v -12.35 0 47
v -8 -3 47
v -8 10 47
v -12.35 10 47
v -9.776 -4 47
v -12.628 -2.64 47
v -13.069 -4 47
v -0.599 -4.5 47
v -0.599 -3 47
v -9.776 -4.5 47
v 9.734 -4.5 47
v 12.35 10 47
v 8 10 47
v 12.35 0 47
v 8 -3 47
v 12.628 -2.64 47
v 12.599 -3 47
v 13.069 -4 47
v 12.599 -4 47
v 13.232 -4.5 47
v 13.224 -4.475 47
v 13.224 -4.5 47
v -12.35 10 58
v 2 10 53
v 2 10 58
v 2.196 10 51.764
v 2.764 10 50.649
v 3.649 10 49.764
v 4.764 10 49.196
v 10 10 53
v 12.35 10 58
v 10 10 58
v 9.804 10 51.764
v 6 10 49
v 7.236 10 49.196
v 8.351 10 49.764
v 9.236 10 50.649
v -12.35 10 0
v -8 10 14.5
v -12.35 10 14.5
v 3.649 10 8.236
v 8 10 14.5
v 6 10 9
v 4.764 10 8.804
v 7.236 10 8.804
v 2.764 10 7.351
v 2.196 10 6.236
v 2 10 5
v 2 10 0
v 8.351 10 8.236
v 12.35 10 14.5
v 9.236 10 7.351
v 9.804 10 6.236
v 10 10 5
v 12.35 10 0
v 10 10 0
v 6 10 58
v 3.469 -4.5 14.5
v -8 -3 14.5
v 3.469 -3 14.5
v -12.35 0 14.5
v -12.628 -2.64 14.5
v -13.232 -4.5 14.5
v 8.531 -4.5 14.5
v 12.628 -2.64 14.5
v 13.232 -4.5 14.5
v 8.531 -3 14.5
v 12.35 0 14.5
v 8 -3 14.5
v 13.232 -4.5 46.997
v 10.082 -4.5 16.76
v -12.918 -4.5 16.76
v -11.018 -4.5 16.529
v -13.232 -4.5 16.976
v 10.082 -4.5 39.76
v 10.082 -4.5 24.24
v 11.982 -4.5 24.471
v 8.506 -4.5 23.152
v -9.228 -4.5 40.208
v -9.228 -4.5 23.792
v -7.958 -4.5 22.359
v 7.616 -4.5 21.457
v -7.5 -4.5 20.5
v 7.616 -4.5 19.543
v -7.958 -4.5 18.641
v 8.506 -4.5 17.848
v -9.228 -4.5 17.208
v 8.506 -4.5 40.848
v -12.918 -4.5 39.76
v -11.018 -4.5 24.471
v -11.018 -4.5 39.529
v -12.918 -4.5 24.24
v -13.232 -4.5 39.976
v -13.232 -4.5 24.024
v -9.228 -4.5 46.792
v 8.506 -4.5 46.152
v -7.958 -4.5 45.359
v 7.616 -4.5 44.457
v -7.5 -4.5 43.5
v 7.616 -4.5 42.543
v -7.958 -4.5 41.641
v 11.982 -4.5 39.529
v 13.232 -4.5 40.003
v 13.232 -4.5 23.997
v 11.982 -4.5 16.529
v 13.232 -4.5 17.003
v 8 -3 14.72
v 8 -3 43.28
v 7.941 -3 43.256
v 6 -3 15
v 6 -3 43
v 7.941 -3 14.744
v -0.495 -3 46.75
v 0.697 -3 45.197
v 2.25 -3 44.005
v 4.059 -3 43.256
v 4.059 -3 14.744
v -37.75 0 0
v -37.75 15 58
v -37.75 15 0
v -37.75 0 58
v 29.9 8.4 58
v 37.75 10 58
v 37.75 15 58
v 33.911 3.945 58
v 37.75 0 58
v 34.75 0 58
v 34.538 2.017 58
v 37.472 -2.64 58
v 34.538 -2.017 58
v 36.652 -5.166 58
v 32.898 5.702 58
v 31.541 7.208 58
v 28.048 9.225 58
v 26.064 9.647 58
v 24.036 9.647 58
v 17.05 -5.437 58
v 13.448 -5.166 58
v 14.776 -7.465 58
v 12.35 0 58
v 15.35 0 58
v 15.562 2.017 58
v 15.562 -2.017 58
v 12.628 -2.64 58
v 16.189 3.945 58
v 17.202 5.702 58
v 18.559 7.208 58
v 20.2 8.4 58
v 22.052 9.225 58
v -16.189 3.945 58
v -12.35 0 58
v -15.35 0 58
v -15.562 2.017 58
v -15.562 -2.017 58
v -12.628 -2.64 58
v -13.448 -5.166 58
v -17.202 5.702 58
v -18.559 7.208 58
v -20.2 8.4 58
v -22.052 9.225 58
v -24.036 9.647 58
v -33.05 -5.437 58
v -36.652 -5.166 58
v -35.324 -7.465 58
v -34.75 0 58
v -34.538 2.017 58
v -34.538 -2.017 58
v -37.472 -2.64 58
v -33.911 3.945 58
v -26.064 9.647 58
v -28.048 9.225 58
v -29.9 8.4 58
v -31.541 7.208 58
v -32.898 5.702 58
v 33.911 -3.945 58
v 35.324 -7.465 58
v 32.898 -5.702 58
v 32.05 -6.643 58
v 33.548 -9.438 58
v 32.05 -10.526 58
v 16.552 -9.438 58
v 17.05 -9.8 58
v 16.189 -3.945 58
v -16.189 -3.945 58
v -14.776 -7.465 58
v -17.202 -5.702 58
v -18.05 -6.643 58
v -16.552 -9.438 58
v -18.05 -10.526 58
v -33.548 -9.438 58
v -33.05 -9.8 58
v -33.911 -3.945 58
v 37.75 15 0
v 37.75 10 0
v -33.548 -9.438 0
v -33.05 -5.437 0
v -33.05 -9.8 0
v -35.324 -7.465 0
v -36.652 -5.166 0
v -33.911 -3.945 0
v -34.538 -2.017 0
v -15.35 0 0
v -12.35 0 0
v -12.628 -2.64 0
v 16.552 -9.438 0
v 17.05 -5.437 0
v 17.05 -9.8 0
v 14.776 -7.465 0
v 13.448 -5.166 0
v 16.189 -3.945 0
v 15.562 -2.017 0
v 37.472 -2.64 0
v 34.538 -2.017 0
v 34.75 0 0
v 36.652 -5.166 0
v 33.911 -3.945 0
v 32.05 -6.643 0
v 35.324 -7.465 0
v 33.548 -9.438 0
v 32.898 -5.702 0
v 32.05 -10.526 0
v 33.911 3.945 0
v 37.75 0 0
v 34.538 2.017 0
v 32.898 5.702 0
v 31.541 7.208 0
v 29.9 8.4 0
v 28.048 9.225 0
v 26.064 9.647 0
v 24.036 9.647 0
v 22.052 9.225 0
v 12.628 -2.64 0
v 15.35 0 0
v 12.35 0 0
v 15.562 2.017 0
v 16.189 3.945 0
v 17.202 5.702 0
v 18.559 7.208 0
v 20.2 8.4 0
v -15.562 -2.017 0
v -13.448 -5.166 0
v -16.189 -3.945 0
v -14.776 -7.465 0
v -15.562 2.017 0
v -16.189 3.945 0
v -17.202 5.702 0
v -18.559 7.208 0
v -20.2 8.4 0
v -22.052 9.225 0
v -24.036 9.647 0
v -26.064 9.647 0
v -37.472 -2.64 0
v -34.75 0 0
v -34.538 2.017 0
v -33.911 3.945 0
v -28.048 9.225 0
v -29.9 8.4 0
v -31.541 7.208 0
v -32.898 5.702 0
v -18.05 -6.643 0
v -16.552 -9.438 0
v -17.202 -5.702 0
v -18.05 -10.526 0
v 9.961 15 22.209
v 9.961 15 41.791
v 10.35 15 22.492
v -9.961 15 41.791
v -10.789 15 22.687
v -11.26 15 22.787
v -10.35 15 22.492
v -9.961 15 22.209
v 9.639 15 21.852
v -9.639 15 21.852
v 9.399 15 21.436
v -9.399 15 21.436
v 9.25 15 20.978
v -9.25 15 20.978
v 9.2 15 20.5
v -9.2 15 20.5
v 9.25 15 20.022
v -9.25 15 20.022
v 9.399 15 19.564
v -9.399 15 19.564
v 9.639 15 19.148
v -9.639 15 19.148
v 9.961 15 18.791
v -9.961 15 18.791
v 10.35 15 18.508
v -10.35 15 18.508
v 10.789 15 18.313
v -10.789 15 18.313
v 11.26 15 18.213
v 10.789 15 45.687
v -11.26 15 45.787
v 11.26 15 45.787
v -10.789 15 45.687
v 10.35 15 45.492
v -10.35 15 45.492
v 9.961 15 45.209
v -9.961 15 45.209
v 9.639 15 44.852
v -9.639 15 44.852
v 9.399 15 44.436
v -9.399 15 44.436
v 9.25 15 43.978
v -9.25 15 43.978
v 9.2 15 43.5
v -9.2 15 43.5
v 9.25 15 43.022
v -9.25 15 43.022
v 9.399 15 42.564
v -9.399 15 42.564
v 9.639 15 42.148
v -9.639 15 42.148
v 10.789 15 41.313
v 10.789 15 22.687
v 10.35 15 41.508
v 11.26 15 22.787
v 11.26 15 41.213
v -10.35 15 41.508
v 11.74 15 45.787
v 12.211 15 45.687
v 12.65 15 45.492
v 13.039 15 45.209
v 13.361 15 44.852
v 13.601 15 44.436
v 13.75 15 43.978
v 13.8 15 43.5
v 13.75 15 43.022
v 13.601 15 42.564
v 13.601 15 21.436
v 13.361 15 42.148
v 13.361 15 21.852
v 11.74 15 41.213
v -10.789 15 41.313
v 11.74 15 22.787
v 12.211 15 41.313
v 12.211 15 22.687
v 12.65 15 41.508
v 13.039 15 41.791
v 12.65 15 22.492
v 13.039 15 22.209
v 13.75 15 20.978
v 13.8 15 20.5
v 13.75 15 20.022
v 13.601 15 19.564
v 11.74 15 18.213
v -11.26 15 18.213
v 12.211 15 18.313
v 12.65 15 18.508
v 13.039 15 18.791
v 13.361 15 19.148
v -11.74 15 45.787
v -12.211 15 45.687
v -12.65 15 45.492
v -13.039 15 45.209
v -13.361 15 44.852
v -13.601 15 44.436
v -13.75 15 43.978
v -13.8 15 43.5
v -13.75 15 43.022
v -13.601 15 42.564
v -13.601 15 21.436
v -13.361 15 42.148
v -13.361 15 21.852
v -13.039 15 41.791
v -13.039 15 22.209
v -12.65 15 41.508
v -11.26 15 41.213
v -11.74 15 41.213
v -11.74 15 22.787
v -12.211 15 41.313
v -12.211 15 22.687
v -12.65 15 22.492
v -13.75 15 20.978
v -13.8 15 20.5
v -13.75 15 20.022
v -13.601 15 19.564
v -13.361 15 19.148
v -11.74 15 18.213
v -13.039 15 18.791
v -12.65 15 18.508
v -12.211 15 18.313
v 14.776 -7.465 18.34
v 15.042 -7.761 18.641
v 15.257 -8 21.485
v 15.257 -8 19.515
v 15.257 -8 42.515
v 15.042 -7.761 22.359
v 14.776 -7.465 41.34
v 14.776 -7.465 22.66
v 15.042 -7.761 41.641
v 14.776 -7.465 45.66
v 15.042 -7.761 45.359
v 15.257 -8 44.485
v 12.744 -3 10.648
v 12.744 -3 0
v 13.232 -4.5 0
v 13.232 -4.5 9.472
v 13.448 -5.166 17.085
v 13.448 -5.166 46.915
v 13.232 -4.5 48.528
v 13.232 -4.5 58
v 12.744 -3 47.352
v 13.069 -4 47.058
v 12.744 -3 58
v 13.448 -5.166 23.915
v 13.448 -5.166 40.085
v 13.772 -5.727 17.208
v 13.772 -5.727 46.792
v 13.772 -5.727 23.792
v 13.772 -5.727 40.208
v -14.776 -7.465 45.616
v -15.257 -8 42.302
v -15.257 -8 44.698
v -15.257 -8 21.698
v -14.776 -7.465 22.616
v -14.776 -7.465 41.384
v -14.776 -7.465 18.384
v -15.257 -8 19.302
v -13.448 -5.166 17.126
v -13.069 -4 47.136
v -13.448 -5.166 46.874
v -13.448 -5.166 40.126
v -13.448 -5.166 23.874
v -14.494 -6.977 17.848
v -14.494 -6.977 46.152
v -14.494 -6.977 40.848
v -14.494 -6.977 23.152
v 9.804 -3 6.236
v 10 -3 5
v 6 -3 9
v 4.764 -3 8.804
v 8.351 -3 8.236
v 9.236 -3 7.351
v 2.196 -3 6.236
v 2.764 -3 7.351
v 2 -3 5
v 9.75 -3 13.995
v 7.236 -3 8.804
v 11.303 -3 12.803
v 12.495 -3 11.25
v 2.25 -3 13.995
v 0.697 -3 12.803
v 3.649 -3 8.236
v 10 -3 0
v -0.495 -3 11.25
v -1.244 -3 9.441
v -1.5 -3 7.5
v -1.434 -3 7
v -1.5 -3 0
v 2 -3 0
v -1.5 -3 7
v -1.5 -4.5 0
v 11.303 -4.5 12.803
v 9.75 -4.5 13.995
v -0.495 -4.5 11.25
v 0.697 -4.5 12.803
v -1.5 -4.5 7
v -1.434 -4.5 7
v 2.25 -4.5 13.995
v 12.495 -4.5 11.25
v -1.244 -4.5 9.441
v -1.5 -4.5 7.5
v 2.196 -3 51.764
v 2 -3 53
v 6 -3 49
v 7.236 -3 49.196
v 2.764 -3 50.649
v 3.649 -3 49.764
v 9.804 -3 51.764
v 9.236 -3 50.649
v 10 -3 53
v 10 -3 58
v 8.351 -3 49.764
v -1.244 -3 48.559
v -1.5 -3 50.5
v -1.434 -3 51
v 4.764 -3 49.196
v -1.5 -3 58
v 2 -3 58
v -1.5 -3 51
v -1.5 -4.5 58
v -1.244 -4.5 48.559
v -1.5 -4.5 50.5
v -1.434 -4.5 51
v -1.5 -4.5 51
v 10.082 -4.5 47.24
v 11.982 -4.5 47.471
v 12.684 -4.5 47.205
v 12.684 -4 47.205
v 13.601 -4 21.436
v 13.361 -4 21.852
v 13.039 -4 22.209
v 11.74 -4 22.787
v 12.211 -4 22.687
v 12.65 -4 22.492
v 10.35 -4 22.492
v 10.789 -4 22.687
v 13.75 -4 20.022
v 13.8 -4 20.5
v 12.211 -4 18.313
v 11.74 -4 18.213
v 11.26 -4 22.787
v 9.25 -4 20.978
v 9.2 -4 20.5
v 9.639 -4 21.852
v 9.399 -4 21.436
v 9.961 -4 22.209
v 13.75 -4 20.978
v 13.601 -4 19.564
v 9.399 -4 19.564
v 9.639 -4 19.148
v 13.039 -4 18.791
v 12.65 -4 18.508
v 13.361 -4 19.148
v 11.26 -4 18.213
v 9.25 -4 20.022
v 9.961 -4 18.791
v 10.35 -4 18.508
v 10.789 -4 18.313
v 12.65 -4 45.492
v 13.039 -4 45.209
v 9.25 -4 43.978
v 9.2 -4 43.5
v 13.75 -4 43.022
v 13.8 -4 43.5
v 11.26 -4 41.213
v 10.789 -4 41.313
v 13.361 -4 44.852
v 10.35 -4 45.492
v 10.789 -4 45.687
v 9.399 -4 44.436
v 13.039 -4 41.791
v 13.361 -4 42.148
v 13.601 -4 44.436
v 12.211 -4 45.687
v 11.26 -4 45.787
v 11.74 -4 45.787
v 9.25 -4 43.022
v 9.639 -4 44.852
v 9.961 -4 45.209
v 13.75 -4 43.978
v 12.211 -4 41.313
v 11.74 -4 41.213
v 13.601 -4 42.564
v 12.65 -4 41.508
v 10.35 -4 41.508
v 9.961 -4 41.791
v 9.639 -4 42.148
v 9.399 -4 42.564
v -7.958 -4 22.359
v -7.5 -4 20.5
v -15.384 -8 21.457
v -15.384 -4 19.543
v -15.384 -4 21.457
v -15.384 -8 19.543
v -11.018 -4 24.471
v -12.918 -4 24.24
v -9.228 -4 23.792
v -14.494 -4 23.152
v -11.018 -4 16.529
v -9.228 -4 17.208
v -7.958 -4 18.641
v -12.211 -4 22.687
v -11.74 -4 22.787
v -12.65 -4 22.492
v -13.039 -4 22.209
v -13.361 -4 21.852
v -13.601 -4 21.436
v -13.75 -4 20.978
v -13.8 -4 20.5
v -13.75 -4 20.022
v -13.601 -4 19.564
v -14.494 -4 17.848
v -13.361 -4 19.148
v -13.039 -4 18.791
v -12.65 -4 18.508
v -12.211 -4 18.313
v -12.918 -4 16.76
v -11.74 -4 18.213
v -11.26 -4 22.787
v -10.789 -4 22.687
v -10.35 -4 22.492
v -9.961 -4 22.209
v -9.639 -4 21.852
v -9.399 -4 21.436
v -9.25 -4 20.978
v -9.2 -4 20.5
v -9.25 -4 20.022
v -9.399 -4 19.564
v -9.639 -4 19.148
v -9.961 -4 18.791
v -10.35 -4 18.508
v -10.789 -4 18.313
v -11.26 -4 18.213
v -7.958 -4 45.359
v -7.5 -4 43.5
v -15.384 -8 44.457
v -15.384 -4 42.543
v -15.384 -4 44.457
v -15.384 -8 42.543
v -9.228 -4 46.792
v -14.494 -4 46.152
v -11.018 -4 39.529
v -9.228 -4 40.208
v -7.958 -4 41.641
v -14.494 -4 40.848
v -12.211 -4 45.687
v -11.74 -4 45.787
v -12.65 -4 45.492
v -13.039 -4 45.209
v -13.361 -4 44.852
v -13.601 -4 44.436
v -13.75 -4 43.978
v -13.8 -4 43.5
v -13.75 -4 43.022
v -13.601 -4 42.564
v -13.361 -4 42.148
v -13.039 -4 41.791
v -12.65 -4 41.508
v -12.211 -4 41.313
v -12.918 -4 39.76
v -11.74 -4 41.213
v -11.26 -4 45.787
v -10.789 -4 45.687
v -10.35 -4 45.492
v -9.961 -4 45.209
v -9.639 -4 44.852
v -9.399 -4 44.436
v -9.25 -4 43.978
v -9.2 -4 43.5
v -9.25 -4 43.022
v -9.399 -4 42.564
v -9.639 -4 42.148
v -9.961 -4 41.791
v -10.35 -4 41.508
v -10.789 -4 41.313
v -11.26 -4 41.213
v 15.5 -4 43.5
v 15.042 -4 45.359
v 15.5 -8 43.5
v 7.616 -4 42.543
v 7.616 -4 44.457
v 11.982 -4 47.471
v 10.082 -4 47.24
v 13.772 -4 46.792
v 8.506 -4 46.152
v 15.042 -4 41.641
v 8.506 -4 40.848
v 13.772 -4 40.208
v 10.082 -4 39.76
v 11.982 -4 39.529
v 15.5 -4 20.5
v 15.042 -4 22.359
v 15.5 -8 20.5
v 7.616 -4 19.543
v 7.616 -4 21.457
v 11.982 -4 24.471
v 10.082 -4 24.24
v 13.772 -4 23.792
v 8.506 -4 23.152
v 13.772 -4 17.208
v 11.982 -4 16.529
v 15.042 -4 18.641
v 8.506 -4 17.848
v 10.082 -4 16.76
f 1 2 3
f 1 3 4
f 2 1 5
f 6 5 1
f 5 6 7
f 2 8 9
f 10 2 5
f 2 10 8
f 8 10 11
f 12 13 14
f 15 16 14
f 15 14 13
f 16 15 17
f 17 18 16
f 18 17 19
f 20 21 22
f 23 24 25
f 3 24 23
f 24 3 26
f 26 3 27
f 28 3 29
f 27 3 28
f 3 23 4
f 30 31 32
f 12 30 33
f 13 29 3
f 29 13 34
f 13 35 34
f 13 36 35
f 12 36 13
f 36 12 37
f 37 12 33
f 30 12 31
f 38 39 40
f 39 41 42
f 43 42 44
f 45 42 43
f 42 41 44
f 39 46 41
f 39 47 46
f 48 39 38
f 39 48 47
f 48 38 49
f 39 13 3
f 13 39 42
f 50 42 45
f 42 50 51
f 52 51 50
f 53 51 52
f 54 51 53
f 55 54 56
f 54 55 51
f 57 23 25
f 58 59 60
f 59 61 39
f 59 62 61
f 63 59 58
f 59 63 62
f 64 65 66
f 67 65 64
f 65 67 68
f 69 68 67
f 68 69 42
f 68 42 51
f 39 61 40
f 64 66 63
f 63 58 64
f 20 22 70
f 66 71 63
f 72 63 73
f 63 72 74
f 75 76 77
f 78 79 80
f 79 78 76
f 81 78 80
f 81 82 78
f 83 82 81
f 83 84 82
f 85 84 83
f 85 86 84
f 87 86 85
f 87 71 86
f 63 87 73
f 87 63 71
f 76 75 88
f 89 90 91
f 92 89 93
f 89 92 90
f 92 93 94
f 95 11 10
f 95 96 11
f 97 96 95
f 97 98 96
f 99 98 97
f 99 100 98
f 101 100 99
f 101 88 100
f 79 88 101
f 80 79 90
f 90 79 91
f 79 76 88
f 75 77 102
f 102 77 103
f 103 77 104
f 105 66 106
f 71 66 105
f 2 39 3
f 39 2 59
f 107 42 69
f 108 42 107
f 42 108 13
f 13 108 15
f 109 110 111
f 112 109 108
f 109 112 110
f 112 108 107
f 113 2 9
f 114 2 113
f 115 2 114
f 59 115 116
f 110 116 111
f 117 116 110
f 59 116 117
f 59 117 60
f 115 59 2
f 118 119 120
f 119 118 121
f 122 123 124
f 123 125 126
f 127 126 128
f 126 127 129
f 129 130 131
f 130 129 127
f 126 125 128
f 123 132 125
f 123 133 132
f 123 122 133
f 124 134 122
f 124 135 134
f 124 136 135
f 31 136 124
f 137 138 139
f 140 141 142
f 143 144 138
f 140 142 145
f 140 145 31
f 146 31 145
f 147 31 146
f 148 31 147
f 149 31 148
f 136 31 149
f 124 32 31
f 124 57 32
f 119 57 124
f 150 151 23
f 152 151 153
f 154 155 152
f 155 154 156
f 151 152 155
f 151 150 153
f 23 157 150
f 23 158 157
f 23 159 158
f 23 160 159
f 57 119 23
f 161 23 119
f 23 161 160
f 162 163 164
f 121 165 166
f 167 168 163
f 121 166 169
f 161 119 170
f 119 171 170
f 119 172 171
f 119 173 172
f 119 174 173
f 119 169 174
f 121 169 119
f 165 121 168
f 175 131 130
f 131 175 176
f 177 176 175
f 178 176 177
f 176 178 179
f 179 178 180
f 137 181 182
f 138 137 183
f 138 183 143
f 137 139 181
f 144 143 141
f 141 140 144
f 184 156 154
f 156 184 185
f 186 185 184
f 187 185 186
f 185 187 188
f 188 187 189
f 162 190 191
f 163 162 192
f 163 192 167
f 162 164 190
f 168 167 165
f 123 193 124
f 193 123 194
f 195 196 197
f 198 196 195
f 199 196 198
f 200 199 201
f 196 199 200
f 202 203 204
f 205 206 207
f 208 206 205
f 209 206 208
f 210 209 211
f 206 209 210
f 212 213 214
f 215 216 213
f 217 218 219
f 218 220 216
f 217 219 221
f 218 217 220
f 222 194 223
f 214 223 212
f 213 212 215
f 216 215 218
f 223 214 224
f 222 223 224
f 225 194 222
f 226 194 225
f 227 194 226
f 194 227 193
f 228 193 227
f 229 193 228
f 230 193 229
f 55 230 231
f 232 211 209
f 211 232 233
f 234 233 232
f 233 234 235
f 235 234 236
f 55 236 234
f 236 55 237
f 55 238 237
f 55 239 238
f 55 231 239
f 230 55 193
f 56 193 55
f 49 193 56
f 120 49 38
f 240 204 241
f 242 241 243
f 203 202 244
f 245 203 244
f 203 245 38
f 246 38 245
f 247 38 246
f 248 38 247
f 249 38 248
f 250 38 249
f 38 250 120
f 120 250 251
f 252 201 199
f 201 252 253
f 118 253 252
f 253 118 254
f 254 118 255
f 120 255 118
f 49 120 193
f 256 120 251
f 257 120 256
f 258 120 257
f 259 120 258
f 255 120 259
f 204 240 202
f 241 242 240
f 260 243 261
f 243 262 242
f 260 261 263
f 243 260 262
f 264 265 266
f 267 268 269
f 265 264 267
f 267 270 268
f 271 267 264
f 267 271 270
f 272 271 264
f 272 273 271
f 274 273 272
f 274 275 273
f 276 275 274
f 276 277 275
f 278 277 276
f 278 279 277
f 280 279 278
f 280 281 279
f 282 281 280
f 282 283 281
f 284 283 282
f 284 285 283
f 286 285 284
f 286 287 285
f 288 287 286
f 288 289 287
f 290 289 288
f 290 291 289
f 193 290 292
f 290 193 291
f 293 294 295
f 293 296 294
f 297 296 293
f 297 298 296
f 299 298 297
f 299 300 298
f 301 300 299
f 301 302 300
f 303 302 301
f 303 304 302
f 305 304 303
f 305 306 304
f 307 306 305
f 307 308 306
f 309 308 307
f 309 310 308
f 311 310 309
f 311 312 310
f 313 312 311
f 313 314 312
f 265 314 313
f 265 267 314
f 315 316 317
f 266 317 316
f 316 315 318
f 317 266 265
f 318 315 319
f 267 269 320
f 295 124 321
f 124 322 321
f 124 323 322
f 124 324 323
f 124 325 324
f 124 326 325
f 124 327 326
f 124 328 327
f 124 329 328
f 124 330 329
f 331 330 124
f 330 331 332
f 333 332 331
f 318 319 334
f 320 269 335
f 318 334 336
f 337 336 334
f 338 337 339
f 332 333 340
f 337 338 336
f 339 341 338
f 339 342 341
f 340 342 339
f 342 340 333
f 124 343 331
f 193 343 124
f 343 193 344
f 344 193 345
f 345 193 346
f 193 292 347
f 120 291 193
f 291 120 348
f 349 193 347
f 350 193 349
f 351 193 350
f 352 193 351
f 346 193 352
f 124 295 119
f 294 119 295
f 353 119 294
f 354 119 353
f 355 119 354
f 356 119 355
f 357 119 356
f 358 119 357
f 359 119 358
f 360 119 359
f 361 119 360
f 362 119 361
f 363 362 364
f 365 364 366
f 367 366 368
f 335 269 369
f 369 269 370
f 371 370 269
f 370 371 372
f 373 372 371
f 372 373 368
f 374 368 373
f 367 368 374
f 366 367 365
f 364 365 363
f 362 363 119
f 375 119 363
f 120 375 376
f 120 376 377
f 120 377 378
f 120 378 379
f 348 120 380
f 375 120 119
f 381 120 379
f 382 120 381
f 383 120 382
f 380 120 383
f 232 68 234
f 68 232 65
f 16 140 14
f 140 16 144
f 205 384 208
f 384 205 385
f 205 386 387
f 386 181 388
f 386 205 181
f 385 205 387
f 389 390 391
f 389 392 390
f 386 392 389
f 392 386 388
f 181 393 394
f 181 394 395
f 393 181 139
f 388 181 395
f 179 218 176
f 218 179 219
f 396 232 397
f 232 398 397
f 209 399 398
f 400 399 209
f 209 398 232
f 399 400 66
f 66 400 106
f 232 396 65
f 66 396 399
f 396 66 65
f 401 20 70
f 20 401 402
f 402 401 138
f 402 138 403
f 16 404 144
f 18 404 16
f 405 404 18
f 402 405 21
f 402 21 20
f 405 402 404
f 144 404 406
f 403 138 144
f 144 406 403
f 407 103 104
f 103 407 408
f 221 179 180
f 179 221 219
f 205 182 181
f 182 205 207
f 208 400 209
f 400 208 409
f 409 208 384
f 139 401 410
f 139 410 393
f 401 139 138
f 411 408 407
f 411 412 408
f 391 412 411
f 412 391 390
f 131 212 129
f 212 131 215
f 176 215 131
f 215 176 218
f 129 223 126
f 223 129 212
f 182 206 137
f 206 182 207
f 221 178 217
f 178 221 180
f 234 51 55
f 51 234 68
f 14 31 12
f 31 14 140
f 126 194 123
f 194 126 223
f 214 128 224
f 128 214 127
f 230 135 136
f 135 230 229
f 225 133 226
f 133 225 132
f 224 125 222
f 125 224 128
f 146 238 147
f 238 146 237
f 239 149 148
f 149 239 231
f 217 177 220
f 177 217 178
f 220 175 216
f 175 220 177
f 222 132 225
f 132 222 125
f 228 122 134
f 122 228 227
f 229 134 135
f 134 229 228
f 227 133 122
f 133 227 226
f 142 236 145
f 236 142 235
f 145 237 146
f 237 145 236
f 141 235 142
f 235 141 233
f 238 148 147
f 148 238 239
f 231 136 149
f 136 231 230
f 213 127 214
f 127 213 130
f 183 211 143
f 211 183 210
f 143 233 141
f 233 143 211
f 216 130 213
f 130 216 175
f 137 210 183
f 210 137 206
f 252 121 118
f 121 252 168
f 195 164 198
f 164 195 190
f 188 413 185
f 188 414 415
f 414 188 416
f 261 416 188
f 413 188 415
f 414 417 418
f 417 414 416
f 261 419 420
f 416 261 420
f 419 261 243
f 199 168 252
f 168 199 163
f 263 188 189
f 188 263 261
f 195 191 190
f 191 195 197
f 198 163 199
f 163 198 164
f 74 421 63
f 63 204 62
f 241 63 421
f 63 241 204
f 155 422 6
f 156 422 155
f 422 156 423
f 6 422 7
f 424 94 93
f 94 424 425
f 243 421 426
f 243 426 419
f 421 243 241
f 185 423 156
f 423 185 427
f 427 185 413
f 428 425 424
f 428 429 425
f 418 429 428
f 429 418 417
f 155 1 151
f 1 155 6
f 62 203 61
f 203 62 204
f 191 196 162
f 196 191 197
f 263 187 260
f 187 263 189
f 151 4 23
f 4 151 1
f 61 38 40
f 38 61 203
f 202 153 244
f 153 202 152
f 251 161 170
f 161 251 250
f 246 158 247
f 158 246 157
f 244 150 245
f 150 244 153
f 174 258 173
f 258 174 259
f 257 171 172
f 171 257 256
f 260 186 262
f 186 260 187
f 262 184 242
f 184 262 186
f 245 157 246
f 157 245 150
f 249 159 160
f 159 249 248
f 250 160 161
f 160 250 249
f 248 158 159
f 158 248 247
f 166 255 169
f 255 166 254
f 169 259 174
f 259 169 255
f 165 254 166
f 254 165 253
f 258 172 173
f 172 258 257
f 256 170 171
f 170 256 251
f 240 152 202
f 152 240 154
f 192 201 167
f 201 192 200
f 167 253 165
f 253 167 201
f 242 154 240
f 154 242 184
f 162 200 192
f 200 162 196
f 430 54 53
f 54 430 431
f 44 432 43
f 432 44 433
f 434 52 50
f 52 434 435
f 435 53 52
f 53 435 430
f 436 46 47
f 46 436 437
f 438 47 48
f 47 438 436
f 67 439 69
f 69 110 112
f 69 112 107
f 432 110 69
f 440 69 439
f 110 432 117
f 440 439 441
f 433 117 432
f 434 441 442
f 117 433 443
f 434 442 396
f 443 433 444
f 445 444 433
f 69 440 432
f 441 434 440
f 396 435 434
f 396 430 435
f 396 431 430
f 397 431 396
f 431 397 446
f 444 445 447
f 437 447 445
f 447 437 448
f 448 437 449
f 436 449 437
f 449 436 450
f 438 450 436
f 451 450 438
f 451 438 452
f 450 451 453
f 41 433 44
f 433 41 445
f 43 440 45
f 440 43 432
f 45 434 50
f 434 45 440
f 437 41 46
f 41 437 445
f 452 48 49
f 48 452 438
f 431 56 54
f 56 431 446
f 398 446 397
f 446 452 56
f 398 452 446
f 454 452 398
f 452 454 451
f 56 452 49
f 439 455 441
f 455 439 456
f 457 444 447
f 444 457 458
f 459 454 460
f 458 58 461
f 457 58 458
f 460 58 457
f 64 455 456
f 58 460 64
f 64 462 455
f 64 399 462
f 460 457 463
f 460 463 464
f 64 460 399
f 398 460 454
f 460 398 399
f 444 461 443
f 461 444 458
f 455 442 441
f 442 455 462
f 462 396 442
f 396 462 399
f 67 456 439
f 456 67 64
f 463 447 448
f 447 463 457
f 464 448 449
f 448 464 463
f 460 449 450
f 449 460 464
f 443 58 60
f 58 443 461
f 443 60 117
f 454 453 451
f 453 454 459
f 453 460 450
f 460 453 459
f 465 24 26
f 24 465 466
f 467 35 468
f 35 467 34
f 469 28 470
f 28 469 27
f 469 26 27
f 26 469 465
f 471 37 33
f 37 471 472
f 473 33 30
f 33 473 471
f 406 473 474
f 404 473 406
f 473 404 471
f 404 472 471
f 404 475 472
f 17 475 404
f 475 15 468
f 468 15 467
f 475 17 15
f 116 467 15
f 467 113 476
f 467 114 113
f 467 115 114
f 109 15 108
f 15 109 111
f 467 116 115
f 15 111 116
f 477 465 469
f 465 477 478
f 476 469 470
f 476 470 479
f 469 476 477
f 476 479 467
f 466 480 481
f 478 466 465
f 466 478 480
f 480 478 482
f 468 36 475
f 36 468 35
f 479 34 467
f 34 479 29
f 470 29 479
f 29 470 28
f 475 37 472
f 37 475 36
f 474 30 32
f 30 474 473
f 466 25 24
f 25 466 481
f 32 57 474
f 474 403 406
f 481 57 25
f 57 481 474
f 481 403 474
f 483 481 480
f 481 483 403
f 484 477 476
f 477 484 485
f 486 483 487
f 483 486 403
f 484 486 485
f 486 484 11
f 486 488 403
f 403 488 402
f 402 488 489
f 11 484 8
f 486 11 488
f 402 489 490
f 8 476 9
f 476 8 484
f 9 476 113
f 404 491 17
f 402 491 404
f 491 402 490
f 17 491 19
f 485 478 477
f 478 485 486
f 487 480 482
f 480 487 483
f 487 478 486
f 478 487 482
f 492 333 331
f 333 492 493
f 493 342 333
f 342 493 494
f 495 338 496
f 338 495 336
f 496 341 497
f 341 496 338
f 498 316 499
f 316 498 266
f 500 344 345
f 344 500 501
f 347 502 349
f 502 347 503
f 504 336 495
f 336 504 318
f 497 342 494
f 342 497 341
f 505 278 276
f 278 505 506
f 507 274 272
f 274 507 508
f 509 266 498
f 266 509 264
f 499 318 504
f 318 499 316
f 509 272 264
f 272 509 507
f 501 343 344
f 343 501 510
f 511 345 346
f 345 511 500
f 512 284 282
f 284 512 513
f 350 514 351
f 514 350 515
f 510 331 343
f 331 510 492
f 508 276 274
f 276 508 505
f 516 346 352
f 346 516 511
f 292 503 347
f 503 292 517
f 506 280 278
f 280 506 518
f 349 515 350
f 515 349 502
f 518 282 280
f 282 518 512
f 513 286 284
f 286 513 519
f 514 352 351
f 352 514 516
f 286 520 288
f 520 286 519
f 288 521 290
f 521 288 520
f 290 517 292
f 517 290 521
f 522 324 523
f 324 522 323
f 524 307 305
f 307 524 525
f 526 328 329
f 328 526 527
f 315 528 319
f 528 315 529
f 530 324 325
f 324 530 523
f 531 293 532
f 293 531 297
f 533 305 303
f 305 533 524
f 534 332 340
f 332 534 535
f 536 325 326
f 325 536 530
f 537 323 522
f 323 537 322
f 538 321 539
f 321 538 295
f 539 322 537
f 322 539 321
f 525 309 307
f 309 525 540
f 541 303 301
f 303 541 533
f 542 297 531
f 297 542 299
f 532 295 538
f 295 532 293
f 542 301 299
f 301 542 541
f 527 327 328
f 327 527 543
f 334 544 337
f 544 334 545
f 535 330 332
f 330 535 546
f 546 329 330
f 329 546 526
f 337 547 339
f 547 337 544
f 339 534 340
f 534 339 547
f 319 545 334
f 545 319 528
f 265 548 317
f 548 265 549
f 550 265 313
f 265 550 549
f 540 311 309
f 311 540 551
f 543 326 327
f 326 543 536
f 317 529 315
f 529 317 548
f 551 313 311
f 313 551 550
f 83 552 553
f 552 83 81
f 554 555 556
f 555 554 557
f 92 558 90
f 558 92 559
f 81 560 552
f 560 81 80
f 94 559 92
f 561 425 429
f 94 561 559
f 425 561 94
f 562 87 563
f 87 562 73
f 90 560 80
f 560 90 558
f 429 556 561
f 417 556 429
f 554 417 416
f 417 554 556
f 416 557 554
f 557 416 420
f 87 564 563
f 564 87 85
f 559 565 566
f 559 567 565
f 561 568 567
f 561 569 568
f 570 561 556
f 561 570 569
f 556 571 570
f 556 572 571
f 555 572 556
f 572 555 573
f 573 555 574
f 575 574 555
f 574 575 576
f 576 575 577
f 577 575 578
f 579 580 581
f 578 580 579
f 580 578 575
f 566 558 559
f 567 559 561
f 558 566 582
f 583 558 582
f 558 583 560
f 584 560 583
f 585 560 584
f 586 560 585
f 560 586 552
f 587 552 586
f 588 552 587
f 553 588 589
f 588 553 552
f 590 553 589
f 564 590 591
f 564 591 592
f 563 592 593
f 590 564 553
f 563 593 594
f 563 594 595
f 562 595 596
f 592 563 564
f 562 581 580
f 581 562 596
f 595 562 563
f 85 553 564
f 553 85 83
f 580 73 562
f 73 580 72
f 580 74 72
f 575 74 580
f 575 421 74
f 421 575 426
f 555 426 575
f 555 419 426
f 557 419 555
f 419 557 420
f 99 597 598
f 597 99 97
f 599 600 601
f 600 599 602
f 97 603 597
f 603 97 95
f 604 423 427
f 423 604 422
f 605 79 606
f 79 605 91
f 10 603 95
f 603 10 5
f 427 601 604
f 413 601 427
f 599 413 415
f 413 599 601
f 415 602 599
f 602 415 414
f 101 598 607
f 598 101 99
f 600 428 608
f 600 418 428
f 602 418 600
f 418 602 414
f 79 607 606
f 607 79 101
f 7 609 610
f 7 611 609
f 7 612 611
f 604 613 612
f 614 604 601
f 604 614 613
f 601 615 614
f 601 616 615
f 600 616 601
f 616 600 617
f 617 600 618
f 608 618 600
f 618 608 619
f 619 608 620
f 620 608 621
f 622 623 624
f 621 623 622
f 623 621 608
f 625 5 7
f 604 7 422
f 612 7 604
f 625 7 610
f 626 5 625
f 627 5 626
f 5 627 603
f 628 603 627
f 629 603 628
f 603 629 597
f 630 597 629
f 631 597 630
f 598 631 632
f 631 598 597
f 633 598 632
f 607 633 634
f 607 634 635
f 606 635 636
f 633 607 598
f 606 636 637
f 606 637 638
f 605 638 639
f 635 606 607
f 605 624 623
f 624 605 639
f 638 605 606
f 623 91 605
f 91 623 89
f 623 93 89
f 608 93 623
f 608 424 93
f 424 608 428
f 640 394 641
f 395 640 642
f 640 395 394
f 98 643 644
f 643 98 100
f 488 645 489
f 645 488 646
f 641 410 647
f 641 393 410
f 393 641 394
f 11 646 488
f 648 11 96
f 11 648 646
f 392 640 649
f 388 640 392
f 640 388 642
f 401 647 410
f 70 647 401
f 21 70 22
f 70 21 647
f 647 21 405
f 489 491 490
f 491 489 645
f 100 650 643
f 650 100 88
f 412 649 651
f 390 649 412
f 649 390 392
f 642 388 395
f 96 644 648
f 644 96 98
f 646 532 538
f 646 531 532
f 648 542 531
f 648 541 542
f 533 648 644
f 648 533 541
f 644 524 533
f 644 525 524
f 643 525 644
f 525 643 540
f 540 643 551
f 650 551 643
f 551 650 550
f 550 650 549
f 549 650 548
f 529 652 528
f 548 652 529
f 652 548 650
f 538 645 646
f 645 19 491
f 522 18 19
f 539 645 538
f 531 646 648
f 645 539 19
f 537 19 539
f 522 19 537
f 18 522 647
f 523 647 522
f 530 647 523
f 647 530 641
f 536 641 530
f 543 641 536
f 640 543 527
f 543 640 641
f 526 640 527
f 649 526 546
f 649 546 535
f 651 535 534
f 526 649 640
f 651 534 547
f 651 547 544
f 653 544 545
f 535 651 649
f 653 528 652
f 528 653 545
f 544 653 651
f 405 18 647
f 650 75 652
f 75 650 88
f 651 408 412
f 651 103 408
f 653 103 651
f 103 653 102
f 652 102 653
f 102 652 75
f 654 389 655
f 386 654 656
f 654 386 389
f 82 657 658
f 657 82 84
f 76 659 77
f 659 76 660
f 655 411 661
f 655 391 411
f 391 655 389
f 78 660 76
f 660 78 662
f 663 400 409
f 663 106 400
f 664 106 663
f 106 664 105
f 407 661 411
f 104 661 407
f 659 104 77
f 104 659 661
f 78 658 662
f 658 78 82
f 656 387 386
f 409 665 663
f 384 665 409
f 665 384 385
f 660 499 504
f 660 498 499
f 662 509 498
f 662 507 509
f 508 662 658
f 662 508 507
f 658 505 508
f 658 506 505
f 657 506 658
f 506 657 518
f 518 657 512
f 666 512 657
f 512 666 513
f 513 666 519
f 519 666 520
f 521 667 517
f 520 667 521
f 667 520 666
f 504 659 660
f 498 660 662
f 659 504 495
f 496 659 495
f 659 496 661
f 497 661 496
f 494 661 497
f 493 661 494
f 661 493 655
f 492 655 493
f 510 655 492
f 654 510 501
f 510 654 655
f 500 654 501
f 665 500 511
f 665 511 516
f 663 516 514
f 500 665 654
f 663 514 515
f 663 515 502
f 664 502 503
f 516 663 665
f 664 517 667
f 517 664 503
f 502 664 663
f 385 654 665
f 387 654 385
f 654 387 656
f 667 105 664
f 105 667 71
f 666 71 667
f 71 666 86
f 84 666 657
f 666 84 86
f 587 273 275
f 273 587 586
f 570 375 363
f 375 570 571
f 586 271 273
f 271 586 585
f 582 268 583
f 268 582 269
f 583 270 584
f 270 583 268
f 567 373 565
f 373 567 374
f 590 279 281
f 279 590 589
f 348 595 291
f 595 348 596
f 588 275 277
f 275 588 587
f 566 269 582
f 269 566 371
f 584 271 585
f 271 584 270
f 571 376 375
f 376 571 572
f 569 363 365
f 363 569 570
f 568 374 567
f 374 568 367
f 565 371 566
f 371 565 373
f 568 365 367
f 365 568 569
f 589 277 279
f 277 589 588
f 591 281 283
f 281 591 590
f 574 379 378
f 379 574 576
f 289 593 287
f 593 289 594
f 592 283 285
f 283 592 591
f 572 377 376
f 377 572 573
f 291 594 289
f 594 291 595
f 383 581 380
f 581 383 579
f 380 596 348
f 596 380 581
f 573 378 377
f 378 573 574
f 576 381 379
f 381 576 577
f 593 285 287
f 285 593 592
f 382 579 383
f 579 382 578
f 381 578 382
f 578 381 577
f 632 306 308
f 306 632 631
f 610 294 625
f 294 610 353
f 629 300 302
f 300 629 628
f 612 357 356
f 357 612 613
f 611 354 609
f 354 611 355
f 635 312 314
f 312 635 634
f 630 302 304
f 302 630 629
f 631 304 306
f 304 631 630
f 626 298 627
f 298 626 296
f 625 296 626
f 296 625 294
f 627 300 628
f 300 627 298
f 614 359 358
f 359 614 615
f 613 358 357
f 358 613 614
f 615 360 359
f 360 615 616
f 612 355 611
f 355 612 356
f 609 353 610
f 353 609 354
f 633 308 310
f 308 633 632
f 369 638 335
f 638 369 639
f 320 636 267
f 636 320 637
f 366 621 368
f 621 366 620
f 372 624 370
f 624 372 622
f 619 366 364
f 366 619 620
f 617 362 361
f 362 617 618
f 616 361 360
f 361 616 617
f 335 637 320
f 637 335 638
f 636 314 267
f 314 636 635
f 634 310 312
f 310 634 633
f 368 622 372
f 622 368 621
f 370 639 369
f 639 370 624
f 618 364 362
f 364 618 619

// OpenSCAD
// TamarinTech 2015
// CC-BY-SA

bearing_outer_diameter = 19.4;
bearing_inner_diameter = 10;
bearing_height = 29;
carriage_width = 58;
carriage_height = 75.5;
carriage_depth = 19.5;
mounting_screw_diameter = 4.6;

module bearing() {
    difference() {
      cylinder(r=(bearing_outer_diameter/2), h=bearing_height);
      translate([0, 0, -0.1]) cylinder(r=(bearing_inner_diameter/2), h=bearing_height+0.2);
    }
}

module rod_guides() {
  %color([0, 1, 1]) translate([-25, 0, -5]) cylinder(r=(bearing_inner_diameter/2), h=carriage_width+10, $fn=25);

  %color([0, 1, 1]) translate([25, 0, -5]) cylinder(r=(bearing_inner_diameter/2), h=carriage_width+10, $fn=25);
}

module mounting_plate() {
    // flat plate
    translate([-(carriage_height/2), 10, 0]) cube([carriage_height, 5, carriage_width]);
    
    // small enforcing plate, belt return path
    difference() {
        translate([-14.5, -4.5, 14.5]) cube([28, 14.5, 32.5]);
        translate([-8, -3, 13]) cube([16, 13, 34.5]);
    }
}

module belt_holder() {
    translate([0, 0, 0]) {
        rotate([90, 0, 0]) {   
            translate([0, 5, 0]) cylinder(r=4, h=13, $fn=20);
            translate([-4, 0, 0]) cube([8, 5, 13]);
            translate([0, 7.5, 13]) cylinder(r=7.5, h=1.5);
            translate([-7.5, 0, 13]) cube([15, 7, 1.5]);
        }
    }

}

module belt_holders() {
    translate([5, 10, 0]) {
        belt_holder();
        translate([0, 0, carriage_width]) rotate([0, 180, 0]) belt_holder();
    }
}

module bearing_holders() {
    translate([(carriage_height/2)-(bearing_outer_diameter+6), 0, 0]) {
      difference() {
        union() {
          translate([0, 0, 0]) cube([bearing_outer_diameter+6, 10, carriage_width]);
          difference() {
            // Right cylinder
            translate([(bearing_outer_diameter+6)/2, 0, 0]) cylinder(r=(bearing_outer_diameter+6)/2, h=carriage_width);
            translate([(bearing_outer_diameter-10)/2, -20, -0.1]) cube([15, 20, carriage_width+0.2]);
          }
        }
        translate([(bearing_outer_diameter+6)/2, 0, -0.2]) cylinder(r=(bearing_outer_diameter)/2, h=carriage_width+0.4);           
      }      
    }
        
    // Left cylinder
    translate([-(carriage_height/2), 0, 0]) {
      difference() {
        union() {
          translate([0, 0, 0]) cube([bearing_outer_diameter+6, 10, carriage_width]);
          difference() {
            translate([(bearing_outer_diameter+6)/2, 0, 0]) cylinder(r=(bearing_outer_diameter+6)/2, h=carriage_width);
            translate([(bearing_outer_diameter-10)/2, -20, -0.1]) cube([15, 20, carriage_width+0.2]);
          }
        }
        translate([(bearing_outer_diameter+6)/2, 0, -0.2]) cylinder(r=(bearing_outer_diameter)/2, h=carriage_width+0.4);
      }
    }   

}

module mounting_screw_pattern() {
    
    rotate([90, 0, 0]) {
        translate([0, 0, 24]) cylinder(r=4, h=4);
        translate([0, 23, 24]) cylinder(r=4, h=4);
        translate([23, 23, 24]) cylinder(r=4, h=4);
        translate([23, 0, 24]) cylinder(r=4, h=4);
        
        cylinder(r=mounting_screw_diameter/2, h=40, $fn=30);
        translate([0, 23, 0]) cylinder(r=mounting_screw_diameter/2, h=40, $fn=30);
        
        translate([23, 0, 0]) {
            cylinder(r=mounting_screw_diameter/2, h=40, $fn=30);
            translate([0, 23, 0]) cylinder(r=mounting_screw_diameter/2, h=40, $fn=30);
        }
    }
}

difference() {
    union() {
        rod_guides();
        mounting_plate();
        bearing_holders();
        translate([1, 0, 0]) belt_holders();
    }
    translate([-11.5, 20, 20.5]) mounting_screw_pattern();
}



%color([1, 1, 0]) translate([-25, 0, 0]) bearing();
%color([1, 1, 0]) translate([-25, 0, bearing_height]) bearing();
%color([1, 1, 0]) translate([25, 0, 0]) bearing();
%color([1, 1, 0]) translate([25, 0, bearing_height]) bearing();
